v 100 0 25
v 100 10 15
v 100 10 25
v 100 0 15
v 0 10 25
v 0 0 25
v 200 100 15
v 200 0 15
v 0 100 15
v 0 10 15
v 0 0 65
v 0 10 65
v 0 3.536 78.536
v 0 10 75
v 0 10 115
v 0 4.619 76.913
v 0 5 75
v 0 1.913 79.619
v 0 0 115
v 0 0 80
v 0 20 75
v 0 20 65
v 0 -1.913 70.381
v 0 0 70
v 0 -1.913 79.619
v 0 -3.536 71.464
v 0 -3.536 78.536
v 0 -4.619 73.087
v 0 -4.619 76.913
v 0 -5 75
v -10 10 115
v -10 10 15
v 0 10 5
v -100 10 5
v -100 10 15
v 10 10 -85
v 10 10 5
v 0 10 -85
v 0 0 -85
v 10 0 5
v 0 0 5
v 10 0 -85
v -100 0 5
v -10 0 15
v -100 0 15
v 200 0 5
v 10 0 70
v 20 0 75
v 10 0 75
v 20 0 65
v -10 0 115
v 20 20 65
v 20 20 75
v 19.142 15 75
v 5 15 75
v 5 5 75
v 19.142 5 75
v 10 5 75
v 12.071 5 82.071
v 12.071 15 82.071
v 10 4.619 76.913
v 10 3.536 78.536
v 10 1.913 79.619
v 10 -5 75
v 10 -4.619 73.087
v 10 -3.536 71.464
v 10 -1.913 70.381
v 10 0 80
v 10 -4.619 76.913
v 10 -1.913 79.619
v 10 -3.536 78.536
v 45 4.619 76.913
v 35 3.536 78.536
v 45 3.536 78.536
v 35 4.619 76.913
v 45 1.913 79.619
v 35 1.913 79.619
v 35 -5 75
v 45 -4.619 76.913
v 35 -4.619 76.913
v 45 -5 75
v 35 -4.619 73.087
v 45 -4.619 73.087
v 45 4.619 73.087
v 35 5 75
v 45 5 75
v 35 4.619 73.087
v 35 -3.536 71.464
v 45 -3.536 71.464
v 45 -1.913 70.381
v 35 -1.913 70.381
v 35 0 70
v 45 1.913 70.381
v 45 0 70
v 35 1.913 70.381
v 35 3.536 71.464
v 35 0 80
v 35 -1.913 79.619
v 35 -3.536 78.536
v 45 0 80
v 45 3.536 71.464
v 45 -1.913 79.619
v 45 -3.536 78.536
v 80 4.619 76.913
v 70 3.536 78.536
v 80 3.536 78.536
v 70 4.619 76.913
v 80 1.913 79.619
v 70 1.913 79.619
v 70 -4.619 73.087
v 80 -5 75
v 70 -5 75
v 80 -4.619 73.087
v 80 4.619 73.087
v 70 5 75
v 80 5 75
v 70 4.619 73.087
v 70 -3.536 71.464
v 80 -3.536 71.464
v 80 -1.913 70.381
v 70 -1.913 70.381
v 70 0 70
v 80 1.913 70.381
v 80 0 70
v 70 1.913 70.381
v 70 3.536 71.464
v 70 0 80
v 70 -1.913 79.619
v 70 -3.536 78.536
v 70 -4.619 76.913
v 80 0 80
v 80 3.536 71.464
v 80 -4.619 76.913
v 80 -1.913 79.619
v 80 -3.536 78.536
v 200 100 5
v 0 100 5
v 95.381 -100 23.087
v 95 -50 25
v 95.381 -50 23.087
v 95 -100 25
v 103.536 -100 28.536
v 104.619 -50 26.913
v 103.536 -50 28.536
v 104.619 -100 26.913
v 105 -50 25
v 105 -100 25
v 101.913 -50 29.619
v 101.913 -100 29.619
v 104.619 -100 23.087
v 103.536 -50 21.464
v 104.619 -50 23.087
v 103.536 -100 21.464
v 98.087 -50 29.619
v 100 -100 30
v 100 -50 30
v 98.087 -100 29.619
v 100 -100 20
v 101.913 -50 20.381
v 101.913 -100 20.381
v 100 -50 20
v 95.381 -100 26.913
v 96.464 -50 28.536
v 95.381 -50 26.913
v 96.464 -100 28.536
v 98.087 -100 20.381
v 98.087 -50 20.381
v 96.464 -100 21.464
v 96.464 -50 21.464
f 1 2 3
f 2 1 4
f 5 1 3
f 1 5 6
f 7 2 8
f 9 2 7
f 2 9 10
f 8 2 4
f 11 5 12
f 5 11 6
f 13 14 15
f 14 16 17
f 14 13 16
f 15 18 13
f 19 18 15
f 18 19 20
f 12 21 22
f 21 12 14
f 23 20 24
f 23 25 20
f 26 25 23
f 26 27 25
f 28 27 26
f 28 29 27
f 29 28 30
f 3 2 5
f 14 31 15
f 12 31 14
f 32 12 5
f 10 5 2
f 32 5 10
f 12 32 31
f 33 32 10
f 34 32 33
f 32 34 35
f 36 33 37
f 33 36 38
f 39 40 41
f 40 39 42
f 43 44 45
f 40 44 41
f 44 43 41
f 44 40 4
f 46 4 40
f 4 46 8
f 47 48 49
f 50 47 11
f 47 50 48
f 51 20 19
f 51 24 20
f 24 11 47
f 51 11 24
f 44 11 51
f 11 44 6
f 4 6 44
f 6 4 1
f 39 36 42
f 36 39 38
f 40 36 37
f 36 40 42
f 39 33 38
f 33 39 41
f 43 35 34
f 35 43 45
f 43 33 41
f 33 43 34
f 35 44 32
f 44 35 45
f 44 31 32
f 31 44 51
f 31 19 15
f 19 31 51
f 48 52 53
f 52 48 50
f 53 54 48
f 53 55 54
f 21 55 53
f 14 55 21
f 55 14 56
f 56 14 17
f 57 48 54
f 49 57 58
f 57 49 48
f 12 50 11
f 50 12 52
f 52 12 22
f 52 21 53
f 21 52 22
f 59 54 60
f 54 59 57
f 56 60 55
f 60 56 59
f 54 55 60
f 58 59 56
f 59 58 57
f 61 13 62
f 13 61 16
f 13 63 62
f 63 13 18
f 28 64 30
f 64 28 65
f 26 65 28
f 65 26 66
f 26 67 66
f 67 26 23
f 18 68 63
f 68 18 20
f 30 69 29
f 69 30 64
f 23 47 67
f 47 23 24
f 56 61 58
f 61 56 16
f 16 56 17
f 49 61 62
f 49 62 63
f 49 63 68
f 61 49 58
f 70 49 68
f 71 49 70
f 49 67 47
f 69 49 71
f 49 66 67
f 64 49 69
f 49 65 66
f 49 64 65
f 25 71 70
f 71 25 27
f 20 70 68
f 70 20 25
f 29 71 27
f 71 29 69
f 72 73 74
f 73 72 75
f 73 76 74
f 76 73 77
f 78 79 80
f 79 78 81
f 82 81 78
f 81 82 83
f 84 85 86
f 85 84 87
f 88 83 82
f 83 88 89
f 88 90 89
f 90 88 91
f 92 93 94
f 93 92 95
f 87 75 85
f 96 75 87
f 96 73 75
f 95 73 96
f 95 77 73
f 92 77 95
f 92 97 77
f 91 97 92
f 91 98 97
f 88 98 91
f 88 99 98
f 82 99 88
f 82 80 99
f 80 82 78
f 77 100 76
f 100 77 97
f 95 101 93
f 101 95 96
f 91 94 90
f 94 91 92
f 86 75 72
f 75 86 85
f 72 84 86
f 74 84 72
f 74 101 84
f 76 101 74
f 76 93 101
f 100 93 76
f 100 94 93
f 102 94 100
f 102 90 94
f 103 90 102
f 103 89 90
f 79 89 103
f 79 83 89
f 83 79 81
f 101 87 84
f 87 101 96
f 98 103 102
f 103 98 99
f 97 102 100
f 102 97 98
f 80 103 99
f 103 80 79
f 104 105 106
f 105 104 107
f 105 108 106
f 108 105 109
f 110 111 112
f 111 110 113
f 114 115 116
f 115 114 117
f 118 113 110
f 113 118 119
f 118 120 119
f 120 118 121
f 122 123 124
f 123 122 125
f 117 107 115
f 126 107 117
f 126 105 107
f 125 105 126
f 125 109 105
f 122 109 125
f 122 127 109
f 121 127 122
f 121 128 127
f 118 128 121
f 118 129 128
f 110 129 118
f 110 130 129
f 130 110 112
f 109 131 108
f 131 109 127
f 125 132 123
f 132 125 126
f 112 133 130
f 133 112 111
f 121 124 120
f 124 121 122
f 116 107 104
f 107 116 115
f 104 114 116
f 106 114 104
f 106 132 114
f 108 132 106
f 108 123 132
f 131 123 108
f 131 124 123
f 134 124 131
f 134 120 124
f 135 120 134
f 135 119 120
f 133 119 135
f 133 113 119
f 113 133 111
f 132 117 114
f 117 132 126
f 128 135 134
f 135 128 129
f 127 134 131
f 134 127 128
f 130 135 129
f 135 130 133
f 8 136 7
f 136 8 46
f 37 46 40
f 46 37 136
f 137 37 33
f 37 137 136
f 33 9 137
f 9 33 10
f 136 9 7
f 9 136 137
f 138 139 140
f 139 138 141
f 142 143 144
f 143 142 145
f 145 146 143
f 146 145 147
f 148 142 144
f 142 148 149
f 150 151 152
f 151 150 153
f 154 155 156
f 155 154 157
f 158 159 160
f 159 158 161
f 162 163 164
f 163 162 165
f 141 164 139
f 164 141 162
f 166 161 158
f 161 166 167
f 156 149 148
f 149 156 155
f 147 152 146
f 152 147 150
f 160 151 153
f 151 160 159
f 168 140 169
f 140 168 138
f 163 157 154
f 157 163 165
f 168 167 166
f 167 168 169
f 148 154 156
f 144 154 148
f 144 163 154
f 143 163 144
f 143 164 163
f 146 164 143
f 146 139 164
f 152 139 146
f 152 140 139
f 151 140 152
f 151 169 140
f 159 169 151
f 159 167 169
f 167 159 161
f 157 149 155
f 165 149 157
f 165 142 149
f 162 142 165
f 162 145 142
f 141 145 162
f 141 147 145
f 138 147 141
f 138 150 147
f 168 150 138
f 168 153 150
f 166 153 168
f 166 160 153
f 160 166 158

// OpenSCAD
// Create the base of the solar generator
translate([0, 0, 5]) {
  cube([200, 100, 10]);
}


// Create the solar panels of the solar generator
translate([0, 0, 15]) {
  for (i = [0:3]) {
    rotate([0, i * 90, 0]) {
      cube([100, 10, 10]);
    }
  }
}

// Create the handle of the solar generator
translate([100, -50, 25]) {
  rotate([90, 0, 0]) {
    cylinder(r=5, h=50);
  }
}

// Create the control panel of the solar generator
translate([0, 0, 65]) {
  cube([20, 20, 10]);
  translate([5, 5, 10]) {
    rotate([0, 45, 0]) {
      cube([10, 10, 10]);
    }
  }
}

// Create the outlets of the solar generator
translate([0, 0, 75]) {
  for (i = [0:2]) {
    translate([i * 35, 0, 0]) {
      rotate([0, 90, 0]) {
        cylinder(r=5, h=10);
      }
    }
  }
}
